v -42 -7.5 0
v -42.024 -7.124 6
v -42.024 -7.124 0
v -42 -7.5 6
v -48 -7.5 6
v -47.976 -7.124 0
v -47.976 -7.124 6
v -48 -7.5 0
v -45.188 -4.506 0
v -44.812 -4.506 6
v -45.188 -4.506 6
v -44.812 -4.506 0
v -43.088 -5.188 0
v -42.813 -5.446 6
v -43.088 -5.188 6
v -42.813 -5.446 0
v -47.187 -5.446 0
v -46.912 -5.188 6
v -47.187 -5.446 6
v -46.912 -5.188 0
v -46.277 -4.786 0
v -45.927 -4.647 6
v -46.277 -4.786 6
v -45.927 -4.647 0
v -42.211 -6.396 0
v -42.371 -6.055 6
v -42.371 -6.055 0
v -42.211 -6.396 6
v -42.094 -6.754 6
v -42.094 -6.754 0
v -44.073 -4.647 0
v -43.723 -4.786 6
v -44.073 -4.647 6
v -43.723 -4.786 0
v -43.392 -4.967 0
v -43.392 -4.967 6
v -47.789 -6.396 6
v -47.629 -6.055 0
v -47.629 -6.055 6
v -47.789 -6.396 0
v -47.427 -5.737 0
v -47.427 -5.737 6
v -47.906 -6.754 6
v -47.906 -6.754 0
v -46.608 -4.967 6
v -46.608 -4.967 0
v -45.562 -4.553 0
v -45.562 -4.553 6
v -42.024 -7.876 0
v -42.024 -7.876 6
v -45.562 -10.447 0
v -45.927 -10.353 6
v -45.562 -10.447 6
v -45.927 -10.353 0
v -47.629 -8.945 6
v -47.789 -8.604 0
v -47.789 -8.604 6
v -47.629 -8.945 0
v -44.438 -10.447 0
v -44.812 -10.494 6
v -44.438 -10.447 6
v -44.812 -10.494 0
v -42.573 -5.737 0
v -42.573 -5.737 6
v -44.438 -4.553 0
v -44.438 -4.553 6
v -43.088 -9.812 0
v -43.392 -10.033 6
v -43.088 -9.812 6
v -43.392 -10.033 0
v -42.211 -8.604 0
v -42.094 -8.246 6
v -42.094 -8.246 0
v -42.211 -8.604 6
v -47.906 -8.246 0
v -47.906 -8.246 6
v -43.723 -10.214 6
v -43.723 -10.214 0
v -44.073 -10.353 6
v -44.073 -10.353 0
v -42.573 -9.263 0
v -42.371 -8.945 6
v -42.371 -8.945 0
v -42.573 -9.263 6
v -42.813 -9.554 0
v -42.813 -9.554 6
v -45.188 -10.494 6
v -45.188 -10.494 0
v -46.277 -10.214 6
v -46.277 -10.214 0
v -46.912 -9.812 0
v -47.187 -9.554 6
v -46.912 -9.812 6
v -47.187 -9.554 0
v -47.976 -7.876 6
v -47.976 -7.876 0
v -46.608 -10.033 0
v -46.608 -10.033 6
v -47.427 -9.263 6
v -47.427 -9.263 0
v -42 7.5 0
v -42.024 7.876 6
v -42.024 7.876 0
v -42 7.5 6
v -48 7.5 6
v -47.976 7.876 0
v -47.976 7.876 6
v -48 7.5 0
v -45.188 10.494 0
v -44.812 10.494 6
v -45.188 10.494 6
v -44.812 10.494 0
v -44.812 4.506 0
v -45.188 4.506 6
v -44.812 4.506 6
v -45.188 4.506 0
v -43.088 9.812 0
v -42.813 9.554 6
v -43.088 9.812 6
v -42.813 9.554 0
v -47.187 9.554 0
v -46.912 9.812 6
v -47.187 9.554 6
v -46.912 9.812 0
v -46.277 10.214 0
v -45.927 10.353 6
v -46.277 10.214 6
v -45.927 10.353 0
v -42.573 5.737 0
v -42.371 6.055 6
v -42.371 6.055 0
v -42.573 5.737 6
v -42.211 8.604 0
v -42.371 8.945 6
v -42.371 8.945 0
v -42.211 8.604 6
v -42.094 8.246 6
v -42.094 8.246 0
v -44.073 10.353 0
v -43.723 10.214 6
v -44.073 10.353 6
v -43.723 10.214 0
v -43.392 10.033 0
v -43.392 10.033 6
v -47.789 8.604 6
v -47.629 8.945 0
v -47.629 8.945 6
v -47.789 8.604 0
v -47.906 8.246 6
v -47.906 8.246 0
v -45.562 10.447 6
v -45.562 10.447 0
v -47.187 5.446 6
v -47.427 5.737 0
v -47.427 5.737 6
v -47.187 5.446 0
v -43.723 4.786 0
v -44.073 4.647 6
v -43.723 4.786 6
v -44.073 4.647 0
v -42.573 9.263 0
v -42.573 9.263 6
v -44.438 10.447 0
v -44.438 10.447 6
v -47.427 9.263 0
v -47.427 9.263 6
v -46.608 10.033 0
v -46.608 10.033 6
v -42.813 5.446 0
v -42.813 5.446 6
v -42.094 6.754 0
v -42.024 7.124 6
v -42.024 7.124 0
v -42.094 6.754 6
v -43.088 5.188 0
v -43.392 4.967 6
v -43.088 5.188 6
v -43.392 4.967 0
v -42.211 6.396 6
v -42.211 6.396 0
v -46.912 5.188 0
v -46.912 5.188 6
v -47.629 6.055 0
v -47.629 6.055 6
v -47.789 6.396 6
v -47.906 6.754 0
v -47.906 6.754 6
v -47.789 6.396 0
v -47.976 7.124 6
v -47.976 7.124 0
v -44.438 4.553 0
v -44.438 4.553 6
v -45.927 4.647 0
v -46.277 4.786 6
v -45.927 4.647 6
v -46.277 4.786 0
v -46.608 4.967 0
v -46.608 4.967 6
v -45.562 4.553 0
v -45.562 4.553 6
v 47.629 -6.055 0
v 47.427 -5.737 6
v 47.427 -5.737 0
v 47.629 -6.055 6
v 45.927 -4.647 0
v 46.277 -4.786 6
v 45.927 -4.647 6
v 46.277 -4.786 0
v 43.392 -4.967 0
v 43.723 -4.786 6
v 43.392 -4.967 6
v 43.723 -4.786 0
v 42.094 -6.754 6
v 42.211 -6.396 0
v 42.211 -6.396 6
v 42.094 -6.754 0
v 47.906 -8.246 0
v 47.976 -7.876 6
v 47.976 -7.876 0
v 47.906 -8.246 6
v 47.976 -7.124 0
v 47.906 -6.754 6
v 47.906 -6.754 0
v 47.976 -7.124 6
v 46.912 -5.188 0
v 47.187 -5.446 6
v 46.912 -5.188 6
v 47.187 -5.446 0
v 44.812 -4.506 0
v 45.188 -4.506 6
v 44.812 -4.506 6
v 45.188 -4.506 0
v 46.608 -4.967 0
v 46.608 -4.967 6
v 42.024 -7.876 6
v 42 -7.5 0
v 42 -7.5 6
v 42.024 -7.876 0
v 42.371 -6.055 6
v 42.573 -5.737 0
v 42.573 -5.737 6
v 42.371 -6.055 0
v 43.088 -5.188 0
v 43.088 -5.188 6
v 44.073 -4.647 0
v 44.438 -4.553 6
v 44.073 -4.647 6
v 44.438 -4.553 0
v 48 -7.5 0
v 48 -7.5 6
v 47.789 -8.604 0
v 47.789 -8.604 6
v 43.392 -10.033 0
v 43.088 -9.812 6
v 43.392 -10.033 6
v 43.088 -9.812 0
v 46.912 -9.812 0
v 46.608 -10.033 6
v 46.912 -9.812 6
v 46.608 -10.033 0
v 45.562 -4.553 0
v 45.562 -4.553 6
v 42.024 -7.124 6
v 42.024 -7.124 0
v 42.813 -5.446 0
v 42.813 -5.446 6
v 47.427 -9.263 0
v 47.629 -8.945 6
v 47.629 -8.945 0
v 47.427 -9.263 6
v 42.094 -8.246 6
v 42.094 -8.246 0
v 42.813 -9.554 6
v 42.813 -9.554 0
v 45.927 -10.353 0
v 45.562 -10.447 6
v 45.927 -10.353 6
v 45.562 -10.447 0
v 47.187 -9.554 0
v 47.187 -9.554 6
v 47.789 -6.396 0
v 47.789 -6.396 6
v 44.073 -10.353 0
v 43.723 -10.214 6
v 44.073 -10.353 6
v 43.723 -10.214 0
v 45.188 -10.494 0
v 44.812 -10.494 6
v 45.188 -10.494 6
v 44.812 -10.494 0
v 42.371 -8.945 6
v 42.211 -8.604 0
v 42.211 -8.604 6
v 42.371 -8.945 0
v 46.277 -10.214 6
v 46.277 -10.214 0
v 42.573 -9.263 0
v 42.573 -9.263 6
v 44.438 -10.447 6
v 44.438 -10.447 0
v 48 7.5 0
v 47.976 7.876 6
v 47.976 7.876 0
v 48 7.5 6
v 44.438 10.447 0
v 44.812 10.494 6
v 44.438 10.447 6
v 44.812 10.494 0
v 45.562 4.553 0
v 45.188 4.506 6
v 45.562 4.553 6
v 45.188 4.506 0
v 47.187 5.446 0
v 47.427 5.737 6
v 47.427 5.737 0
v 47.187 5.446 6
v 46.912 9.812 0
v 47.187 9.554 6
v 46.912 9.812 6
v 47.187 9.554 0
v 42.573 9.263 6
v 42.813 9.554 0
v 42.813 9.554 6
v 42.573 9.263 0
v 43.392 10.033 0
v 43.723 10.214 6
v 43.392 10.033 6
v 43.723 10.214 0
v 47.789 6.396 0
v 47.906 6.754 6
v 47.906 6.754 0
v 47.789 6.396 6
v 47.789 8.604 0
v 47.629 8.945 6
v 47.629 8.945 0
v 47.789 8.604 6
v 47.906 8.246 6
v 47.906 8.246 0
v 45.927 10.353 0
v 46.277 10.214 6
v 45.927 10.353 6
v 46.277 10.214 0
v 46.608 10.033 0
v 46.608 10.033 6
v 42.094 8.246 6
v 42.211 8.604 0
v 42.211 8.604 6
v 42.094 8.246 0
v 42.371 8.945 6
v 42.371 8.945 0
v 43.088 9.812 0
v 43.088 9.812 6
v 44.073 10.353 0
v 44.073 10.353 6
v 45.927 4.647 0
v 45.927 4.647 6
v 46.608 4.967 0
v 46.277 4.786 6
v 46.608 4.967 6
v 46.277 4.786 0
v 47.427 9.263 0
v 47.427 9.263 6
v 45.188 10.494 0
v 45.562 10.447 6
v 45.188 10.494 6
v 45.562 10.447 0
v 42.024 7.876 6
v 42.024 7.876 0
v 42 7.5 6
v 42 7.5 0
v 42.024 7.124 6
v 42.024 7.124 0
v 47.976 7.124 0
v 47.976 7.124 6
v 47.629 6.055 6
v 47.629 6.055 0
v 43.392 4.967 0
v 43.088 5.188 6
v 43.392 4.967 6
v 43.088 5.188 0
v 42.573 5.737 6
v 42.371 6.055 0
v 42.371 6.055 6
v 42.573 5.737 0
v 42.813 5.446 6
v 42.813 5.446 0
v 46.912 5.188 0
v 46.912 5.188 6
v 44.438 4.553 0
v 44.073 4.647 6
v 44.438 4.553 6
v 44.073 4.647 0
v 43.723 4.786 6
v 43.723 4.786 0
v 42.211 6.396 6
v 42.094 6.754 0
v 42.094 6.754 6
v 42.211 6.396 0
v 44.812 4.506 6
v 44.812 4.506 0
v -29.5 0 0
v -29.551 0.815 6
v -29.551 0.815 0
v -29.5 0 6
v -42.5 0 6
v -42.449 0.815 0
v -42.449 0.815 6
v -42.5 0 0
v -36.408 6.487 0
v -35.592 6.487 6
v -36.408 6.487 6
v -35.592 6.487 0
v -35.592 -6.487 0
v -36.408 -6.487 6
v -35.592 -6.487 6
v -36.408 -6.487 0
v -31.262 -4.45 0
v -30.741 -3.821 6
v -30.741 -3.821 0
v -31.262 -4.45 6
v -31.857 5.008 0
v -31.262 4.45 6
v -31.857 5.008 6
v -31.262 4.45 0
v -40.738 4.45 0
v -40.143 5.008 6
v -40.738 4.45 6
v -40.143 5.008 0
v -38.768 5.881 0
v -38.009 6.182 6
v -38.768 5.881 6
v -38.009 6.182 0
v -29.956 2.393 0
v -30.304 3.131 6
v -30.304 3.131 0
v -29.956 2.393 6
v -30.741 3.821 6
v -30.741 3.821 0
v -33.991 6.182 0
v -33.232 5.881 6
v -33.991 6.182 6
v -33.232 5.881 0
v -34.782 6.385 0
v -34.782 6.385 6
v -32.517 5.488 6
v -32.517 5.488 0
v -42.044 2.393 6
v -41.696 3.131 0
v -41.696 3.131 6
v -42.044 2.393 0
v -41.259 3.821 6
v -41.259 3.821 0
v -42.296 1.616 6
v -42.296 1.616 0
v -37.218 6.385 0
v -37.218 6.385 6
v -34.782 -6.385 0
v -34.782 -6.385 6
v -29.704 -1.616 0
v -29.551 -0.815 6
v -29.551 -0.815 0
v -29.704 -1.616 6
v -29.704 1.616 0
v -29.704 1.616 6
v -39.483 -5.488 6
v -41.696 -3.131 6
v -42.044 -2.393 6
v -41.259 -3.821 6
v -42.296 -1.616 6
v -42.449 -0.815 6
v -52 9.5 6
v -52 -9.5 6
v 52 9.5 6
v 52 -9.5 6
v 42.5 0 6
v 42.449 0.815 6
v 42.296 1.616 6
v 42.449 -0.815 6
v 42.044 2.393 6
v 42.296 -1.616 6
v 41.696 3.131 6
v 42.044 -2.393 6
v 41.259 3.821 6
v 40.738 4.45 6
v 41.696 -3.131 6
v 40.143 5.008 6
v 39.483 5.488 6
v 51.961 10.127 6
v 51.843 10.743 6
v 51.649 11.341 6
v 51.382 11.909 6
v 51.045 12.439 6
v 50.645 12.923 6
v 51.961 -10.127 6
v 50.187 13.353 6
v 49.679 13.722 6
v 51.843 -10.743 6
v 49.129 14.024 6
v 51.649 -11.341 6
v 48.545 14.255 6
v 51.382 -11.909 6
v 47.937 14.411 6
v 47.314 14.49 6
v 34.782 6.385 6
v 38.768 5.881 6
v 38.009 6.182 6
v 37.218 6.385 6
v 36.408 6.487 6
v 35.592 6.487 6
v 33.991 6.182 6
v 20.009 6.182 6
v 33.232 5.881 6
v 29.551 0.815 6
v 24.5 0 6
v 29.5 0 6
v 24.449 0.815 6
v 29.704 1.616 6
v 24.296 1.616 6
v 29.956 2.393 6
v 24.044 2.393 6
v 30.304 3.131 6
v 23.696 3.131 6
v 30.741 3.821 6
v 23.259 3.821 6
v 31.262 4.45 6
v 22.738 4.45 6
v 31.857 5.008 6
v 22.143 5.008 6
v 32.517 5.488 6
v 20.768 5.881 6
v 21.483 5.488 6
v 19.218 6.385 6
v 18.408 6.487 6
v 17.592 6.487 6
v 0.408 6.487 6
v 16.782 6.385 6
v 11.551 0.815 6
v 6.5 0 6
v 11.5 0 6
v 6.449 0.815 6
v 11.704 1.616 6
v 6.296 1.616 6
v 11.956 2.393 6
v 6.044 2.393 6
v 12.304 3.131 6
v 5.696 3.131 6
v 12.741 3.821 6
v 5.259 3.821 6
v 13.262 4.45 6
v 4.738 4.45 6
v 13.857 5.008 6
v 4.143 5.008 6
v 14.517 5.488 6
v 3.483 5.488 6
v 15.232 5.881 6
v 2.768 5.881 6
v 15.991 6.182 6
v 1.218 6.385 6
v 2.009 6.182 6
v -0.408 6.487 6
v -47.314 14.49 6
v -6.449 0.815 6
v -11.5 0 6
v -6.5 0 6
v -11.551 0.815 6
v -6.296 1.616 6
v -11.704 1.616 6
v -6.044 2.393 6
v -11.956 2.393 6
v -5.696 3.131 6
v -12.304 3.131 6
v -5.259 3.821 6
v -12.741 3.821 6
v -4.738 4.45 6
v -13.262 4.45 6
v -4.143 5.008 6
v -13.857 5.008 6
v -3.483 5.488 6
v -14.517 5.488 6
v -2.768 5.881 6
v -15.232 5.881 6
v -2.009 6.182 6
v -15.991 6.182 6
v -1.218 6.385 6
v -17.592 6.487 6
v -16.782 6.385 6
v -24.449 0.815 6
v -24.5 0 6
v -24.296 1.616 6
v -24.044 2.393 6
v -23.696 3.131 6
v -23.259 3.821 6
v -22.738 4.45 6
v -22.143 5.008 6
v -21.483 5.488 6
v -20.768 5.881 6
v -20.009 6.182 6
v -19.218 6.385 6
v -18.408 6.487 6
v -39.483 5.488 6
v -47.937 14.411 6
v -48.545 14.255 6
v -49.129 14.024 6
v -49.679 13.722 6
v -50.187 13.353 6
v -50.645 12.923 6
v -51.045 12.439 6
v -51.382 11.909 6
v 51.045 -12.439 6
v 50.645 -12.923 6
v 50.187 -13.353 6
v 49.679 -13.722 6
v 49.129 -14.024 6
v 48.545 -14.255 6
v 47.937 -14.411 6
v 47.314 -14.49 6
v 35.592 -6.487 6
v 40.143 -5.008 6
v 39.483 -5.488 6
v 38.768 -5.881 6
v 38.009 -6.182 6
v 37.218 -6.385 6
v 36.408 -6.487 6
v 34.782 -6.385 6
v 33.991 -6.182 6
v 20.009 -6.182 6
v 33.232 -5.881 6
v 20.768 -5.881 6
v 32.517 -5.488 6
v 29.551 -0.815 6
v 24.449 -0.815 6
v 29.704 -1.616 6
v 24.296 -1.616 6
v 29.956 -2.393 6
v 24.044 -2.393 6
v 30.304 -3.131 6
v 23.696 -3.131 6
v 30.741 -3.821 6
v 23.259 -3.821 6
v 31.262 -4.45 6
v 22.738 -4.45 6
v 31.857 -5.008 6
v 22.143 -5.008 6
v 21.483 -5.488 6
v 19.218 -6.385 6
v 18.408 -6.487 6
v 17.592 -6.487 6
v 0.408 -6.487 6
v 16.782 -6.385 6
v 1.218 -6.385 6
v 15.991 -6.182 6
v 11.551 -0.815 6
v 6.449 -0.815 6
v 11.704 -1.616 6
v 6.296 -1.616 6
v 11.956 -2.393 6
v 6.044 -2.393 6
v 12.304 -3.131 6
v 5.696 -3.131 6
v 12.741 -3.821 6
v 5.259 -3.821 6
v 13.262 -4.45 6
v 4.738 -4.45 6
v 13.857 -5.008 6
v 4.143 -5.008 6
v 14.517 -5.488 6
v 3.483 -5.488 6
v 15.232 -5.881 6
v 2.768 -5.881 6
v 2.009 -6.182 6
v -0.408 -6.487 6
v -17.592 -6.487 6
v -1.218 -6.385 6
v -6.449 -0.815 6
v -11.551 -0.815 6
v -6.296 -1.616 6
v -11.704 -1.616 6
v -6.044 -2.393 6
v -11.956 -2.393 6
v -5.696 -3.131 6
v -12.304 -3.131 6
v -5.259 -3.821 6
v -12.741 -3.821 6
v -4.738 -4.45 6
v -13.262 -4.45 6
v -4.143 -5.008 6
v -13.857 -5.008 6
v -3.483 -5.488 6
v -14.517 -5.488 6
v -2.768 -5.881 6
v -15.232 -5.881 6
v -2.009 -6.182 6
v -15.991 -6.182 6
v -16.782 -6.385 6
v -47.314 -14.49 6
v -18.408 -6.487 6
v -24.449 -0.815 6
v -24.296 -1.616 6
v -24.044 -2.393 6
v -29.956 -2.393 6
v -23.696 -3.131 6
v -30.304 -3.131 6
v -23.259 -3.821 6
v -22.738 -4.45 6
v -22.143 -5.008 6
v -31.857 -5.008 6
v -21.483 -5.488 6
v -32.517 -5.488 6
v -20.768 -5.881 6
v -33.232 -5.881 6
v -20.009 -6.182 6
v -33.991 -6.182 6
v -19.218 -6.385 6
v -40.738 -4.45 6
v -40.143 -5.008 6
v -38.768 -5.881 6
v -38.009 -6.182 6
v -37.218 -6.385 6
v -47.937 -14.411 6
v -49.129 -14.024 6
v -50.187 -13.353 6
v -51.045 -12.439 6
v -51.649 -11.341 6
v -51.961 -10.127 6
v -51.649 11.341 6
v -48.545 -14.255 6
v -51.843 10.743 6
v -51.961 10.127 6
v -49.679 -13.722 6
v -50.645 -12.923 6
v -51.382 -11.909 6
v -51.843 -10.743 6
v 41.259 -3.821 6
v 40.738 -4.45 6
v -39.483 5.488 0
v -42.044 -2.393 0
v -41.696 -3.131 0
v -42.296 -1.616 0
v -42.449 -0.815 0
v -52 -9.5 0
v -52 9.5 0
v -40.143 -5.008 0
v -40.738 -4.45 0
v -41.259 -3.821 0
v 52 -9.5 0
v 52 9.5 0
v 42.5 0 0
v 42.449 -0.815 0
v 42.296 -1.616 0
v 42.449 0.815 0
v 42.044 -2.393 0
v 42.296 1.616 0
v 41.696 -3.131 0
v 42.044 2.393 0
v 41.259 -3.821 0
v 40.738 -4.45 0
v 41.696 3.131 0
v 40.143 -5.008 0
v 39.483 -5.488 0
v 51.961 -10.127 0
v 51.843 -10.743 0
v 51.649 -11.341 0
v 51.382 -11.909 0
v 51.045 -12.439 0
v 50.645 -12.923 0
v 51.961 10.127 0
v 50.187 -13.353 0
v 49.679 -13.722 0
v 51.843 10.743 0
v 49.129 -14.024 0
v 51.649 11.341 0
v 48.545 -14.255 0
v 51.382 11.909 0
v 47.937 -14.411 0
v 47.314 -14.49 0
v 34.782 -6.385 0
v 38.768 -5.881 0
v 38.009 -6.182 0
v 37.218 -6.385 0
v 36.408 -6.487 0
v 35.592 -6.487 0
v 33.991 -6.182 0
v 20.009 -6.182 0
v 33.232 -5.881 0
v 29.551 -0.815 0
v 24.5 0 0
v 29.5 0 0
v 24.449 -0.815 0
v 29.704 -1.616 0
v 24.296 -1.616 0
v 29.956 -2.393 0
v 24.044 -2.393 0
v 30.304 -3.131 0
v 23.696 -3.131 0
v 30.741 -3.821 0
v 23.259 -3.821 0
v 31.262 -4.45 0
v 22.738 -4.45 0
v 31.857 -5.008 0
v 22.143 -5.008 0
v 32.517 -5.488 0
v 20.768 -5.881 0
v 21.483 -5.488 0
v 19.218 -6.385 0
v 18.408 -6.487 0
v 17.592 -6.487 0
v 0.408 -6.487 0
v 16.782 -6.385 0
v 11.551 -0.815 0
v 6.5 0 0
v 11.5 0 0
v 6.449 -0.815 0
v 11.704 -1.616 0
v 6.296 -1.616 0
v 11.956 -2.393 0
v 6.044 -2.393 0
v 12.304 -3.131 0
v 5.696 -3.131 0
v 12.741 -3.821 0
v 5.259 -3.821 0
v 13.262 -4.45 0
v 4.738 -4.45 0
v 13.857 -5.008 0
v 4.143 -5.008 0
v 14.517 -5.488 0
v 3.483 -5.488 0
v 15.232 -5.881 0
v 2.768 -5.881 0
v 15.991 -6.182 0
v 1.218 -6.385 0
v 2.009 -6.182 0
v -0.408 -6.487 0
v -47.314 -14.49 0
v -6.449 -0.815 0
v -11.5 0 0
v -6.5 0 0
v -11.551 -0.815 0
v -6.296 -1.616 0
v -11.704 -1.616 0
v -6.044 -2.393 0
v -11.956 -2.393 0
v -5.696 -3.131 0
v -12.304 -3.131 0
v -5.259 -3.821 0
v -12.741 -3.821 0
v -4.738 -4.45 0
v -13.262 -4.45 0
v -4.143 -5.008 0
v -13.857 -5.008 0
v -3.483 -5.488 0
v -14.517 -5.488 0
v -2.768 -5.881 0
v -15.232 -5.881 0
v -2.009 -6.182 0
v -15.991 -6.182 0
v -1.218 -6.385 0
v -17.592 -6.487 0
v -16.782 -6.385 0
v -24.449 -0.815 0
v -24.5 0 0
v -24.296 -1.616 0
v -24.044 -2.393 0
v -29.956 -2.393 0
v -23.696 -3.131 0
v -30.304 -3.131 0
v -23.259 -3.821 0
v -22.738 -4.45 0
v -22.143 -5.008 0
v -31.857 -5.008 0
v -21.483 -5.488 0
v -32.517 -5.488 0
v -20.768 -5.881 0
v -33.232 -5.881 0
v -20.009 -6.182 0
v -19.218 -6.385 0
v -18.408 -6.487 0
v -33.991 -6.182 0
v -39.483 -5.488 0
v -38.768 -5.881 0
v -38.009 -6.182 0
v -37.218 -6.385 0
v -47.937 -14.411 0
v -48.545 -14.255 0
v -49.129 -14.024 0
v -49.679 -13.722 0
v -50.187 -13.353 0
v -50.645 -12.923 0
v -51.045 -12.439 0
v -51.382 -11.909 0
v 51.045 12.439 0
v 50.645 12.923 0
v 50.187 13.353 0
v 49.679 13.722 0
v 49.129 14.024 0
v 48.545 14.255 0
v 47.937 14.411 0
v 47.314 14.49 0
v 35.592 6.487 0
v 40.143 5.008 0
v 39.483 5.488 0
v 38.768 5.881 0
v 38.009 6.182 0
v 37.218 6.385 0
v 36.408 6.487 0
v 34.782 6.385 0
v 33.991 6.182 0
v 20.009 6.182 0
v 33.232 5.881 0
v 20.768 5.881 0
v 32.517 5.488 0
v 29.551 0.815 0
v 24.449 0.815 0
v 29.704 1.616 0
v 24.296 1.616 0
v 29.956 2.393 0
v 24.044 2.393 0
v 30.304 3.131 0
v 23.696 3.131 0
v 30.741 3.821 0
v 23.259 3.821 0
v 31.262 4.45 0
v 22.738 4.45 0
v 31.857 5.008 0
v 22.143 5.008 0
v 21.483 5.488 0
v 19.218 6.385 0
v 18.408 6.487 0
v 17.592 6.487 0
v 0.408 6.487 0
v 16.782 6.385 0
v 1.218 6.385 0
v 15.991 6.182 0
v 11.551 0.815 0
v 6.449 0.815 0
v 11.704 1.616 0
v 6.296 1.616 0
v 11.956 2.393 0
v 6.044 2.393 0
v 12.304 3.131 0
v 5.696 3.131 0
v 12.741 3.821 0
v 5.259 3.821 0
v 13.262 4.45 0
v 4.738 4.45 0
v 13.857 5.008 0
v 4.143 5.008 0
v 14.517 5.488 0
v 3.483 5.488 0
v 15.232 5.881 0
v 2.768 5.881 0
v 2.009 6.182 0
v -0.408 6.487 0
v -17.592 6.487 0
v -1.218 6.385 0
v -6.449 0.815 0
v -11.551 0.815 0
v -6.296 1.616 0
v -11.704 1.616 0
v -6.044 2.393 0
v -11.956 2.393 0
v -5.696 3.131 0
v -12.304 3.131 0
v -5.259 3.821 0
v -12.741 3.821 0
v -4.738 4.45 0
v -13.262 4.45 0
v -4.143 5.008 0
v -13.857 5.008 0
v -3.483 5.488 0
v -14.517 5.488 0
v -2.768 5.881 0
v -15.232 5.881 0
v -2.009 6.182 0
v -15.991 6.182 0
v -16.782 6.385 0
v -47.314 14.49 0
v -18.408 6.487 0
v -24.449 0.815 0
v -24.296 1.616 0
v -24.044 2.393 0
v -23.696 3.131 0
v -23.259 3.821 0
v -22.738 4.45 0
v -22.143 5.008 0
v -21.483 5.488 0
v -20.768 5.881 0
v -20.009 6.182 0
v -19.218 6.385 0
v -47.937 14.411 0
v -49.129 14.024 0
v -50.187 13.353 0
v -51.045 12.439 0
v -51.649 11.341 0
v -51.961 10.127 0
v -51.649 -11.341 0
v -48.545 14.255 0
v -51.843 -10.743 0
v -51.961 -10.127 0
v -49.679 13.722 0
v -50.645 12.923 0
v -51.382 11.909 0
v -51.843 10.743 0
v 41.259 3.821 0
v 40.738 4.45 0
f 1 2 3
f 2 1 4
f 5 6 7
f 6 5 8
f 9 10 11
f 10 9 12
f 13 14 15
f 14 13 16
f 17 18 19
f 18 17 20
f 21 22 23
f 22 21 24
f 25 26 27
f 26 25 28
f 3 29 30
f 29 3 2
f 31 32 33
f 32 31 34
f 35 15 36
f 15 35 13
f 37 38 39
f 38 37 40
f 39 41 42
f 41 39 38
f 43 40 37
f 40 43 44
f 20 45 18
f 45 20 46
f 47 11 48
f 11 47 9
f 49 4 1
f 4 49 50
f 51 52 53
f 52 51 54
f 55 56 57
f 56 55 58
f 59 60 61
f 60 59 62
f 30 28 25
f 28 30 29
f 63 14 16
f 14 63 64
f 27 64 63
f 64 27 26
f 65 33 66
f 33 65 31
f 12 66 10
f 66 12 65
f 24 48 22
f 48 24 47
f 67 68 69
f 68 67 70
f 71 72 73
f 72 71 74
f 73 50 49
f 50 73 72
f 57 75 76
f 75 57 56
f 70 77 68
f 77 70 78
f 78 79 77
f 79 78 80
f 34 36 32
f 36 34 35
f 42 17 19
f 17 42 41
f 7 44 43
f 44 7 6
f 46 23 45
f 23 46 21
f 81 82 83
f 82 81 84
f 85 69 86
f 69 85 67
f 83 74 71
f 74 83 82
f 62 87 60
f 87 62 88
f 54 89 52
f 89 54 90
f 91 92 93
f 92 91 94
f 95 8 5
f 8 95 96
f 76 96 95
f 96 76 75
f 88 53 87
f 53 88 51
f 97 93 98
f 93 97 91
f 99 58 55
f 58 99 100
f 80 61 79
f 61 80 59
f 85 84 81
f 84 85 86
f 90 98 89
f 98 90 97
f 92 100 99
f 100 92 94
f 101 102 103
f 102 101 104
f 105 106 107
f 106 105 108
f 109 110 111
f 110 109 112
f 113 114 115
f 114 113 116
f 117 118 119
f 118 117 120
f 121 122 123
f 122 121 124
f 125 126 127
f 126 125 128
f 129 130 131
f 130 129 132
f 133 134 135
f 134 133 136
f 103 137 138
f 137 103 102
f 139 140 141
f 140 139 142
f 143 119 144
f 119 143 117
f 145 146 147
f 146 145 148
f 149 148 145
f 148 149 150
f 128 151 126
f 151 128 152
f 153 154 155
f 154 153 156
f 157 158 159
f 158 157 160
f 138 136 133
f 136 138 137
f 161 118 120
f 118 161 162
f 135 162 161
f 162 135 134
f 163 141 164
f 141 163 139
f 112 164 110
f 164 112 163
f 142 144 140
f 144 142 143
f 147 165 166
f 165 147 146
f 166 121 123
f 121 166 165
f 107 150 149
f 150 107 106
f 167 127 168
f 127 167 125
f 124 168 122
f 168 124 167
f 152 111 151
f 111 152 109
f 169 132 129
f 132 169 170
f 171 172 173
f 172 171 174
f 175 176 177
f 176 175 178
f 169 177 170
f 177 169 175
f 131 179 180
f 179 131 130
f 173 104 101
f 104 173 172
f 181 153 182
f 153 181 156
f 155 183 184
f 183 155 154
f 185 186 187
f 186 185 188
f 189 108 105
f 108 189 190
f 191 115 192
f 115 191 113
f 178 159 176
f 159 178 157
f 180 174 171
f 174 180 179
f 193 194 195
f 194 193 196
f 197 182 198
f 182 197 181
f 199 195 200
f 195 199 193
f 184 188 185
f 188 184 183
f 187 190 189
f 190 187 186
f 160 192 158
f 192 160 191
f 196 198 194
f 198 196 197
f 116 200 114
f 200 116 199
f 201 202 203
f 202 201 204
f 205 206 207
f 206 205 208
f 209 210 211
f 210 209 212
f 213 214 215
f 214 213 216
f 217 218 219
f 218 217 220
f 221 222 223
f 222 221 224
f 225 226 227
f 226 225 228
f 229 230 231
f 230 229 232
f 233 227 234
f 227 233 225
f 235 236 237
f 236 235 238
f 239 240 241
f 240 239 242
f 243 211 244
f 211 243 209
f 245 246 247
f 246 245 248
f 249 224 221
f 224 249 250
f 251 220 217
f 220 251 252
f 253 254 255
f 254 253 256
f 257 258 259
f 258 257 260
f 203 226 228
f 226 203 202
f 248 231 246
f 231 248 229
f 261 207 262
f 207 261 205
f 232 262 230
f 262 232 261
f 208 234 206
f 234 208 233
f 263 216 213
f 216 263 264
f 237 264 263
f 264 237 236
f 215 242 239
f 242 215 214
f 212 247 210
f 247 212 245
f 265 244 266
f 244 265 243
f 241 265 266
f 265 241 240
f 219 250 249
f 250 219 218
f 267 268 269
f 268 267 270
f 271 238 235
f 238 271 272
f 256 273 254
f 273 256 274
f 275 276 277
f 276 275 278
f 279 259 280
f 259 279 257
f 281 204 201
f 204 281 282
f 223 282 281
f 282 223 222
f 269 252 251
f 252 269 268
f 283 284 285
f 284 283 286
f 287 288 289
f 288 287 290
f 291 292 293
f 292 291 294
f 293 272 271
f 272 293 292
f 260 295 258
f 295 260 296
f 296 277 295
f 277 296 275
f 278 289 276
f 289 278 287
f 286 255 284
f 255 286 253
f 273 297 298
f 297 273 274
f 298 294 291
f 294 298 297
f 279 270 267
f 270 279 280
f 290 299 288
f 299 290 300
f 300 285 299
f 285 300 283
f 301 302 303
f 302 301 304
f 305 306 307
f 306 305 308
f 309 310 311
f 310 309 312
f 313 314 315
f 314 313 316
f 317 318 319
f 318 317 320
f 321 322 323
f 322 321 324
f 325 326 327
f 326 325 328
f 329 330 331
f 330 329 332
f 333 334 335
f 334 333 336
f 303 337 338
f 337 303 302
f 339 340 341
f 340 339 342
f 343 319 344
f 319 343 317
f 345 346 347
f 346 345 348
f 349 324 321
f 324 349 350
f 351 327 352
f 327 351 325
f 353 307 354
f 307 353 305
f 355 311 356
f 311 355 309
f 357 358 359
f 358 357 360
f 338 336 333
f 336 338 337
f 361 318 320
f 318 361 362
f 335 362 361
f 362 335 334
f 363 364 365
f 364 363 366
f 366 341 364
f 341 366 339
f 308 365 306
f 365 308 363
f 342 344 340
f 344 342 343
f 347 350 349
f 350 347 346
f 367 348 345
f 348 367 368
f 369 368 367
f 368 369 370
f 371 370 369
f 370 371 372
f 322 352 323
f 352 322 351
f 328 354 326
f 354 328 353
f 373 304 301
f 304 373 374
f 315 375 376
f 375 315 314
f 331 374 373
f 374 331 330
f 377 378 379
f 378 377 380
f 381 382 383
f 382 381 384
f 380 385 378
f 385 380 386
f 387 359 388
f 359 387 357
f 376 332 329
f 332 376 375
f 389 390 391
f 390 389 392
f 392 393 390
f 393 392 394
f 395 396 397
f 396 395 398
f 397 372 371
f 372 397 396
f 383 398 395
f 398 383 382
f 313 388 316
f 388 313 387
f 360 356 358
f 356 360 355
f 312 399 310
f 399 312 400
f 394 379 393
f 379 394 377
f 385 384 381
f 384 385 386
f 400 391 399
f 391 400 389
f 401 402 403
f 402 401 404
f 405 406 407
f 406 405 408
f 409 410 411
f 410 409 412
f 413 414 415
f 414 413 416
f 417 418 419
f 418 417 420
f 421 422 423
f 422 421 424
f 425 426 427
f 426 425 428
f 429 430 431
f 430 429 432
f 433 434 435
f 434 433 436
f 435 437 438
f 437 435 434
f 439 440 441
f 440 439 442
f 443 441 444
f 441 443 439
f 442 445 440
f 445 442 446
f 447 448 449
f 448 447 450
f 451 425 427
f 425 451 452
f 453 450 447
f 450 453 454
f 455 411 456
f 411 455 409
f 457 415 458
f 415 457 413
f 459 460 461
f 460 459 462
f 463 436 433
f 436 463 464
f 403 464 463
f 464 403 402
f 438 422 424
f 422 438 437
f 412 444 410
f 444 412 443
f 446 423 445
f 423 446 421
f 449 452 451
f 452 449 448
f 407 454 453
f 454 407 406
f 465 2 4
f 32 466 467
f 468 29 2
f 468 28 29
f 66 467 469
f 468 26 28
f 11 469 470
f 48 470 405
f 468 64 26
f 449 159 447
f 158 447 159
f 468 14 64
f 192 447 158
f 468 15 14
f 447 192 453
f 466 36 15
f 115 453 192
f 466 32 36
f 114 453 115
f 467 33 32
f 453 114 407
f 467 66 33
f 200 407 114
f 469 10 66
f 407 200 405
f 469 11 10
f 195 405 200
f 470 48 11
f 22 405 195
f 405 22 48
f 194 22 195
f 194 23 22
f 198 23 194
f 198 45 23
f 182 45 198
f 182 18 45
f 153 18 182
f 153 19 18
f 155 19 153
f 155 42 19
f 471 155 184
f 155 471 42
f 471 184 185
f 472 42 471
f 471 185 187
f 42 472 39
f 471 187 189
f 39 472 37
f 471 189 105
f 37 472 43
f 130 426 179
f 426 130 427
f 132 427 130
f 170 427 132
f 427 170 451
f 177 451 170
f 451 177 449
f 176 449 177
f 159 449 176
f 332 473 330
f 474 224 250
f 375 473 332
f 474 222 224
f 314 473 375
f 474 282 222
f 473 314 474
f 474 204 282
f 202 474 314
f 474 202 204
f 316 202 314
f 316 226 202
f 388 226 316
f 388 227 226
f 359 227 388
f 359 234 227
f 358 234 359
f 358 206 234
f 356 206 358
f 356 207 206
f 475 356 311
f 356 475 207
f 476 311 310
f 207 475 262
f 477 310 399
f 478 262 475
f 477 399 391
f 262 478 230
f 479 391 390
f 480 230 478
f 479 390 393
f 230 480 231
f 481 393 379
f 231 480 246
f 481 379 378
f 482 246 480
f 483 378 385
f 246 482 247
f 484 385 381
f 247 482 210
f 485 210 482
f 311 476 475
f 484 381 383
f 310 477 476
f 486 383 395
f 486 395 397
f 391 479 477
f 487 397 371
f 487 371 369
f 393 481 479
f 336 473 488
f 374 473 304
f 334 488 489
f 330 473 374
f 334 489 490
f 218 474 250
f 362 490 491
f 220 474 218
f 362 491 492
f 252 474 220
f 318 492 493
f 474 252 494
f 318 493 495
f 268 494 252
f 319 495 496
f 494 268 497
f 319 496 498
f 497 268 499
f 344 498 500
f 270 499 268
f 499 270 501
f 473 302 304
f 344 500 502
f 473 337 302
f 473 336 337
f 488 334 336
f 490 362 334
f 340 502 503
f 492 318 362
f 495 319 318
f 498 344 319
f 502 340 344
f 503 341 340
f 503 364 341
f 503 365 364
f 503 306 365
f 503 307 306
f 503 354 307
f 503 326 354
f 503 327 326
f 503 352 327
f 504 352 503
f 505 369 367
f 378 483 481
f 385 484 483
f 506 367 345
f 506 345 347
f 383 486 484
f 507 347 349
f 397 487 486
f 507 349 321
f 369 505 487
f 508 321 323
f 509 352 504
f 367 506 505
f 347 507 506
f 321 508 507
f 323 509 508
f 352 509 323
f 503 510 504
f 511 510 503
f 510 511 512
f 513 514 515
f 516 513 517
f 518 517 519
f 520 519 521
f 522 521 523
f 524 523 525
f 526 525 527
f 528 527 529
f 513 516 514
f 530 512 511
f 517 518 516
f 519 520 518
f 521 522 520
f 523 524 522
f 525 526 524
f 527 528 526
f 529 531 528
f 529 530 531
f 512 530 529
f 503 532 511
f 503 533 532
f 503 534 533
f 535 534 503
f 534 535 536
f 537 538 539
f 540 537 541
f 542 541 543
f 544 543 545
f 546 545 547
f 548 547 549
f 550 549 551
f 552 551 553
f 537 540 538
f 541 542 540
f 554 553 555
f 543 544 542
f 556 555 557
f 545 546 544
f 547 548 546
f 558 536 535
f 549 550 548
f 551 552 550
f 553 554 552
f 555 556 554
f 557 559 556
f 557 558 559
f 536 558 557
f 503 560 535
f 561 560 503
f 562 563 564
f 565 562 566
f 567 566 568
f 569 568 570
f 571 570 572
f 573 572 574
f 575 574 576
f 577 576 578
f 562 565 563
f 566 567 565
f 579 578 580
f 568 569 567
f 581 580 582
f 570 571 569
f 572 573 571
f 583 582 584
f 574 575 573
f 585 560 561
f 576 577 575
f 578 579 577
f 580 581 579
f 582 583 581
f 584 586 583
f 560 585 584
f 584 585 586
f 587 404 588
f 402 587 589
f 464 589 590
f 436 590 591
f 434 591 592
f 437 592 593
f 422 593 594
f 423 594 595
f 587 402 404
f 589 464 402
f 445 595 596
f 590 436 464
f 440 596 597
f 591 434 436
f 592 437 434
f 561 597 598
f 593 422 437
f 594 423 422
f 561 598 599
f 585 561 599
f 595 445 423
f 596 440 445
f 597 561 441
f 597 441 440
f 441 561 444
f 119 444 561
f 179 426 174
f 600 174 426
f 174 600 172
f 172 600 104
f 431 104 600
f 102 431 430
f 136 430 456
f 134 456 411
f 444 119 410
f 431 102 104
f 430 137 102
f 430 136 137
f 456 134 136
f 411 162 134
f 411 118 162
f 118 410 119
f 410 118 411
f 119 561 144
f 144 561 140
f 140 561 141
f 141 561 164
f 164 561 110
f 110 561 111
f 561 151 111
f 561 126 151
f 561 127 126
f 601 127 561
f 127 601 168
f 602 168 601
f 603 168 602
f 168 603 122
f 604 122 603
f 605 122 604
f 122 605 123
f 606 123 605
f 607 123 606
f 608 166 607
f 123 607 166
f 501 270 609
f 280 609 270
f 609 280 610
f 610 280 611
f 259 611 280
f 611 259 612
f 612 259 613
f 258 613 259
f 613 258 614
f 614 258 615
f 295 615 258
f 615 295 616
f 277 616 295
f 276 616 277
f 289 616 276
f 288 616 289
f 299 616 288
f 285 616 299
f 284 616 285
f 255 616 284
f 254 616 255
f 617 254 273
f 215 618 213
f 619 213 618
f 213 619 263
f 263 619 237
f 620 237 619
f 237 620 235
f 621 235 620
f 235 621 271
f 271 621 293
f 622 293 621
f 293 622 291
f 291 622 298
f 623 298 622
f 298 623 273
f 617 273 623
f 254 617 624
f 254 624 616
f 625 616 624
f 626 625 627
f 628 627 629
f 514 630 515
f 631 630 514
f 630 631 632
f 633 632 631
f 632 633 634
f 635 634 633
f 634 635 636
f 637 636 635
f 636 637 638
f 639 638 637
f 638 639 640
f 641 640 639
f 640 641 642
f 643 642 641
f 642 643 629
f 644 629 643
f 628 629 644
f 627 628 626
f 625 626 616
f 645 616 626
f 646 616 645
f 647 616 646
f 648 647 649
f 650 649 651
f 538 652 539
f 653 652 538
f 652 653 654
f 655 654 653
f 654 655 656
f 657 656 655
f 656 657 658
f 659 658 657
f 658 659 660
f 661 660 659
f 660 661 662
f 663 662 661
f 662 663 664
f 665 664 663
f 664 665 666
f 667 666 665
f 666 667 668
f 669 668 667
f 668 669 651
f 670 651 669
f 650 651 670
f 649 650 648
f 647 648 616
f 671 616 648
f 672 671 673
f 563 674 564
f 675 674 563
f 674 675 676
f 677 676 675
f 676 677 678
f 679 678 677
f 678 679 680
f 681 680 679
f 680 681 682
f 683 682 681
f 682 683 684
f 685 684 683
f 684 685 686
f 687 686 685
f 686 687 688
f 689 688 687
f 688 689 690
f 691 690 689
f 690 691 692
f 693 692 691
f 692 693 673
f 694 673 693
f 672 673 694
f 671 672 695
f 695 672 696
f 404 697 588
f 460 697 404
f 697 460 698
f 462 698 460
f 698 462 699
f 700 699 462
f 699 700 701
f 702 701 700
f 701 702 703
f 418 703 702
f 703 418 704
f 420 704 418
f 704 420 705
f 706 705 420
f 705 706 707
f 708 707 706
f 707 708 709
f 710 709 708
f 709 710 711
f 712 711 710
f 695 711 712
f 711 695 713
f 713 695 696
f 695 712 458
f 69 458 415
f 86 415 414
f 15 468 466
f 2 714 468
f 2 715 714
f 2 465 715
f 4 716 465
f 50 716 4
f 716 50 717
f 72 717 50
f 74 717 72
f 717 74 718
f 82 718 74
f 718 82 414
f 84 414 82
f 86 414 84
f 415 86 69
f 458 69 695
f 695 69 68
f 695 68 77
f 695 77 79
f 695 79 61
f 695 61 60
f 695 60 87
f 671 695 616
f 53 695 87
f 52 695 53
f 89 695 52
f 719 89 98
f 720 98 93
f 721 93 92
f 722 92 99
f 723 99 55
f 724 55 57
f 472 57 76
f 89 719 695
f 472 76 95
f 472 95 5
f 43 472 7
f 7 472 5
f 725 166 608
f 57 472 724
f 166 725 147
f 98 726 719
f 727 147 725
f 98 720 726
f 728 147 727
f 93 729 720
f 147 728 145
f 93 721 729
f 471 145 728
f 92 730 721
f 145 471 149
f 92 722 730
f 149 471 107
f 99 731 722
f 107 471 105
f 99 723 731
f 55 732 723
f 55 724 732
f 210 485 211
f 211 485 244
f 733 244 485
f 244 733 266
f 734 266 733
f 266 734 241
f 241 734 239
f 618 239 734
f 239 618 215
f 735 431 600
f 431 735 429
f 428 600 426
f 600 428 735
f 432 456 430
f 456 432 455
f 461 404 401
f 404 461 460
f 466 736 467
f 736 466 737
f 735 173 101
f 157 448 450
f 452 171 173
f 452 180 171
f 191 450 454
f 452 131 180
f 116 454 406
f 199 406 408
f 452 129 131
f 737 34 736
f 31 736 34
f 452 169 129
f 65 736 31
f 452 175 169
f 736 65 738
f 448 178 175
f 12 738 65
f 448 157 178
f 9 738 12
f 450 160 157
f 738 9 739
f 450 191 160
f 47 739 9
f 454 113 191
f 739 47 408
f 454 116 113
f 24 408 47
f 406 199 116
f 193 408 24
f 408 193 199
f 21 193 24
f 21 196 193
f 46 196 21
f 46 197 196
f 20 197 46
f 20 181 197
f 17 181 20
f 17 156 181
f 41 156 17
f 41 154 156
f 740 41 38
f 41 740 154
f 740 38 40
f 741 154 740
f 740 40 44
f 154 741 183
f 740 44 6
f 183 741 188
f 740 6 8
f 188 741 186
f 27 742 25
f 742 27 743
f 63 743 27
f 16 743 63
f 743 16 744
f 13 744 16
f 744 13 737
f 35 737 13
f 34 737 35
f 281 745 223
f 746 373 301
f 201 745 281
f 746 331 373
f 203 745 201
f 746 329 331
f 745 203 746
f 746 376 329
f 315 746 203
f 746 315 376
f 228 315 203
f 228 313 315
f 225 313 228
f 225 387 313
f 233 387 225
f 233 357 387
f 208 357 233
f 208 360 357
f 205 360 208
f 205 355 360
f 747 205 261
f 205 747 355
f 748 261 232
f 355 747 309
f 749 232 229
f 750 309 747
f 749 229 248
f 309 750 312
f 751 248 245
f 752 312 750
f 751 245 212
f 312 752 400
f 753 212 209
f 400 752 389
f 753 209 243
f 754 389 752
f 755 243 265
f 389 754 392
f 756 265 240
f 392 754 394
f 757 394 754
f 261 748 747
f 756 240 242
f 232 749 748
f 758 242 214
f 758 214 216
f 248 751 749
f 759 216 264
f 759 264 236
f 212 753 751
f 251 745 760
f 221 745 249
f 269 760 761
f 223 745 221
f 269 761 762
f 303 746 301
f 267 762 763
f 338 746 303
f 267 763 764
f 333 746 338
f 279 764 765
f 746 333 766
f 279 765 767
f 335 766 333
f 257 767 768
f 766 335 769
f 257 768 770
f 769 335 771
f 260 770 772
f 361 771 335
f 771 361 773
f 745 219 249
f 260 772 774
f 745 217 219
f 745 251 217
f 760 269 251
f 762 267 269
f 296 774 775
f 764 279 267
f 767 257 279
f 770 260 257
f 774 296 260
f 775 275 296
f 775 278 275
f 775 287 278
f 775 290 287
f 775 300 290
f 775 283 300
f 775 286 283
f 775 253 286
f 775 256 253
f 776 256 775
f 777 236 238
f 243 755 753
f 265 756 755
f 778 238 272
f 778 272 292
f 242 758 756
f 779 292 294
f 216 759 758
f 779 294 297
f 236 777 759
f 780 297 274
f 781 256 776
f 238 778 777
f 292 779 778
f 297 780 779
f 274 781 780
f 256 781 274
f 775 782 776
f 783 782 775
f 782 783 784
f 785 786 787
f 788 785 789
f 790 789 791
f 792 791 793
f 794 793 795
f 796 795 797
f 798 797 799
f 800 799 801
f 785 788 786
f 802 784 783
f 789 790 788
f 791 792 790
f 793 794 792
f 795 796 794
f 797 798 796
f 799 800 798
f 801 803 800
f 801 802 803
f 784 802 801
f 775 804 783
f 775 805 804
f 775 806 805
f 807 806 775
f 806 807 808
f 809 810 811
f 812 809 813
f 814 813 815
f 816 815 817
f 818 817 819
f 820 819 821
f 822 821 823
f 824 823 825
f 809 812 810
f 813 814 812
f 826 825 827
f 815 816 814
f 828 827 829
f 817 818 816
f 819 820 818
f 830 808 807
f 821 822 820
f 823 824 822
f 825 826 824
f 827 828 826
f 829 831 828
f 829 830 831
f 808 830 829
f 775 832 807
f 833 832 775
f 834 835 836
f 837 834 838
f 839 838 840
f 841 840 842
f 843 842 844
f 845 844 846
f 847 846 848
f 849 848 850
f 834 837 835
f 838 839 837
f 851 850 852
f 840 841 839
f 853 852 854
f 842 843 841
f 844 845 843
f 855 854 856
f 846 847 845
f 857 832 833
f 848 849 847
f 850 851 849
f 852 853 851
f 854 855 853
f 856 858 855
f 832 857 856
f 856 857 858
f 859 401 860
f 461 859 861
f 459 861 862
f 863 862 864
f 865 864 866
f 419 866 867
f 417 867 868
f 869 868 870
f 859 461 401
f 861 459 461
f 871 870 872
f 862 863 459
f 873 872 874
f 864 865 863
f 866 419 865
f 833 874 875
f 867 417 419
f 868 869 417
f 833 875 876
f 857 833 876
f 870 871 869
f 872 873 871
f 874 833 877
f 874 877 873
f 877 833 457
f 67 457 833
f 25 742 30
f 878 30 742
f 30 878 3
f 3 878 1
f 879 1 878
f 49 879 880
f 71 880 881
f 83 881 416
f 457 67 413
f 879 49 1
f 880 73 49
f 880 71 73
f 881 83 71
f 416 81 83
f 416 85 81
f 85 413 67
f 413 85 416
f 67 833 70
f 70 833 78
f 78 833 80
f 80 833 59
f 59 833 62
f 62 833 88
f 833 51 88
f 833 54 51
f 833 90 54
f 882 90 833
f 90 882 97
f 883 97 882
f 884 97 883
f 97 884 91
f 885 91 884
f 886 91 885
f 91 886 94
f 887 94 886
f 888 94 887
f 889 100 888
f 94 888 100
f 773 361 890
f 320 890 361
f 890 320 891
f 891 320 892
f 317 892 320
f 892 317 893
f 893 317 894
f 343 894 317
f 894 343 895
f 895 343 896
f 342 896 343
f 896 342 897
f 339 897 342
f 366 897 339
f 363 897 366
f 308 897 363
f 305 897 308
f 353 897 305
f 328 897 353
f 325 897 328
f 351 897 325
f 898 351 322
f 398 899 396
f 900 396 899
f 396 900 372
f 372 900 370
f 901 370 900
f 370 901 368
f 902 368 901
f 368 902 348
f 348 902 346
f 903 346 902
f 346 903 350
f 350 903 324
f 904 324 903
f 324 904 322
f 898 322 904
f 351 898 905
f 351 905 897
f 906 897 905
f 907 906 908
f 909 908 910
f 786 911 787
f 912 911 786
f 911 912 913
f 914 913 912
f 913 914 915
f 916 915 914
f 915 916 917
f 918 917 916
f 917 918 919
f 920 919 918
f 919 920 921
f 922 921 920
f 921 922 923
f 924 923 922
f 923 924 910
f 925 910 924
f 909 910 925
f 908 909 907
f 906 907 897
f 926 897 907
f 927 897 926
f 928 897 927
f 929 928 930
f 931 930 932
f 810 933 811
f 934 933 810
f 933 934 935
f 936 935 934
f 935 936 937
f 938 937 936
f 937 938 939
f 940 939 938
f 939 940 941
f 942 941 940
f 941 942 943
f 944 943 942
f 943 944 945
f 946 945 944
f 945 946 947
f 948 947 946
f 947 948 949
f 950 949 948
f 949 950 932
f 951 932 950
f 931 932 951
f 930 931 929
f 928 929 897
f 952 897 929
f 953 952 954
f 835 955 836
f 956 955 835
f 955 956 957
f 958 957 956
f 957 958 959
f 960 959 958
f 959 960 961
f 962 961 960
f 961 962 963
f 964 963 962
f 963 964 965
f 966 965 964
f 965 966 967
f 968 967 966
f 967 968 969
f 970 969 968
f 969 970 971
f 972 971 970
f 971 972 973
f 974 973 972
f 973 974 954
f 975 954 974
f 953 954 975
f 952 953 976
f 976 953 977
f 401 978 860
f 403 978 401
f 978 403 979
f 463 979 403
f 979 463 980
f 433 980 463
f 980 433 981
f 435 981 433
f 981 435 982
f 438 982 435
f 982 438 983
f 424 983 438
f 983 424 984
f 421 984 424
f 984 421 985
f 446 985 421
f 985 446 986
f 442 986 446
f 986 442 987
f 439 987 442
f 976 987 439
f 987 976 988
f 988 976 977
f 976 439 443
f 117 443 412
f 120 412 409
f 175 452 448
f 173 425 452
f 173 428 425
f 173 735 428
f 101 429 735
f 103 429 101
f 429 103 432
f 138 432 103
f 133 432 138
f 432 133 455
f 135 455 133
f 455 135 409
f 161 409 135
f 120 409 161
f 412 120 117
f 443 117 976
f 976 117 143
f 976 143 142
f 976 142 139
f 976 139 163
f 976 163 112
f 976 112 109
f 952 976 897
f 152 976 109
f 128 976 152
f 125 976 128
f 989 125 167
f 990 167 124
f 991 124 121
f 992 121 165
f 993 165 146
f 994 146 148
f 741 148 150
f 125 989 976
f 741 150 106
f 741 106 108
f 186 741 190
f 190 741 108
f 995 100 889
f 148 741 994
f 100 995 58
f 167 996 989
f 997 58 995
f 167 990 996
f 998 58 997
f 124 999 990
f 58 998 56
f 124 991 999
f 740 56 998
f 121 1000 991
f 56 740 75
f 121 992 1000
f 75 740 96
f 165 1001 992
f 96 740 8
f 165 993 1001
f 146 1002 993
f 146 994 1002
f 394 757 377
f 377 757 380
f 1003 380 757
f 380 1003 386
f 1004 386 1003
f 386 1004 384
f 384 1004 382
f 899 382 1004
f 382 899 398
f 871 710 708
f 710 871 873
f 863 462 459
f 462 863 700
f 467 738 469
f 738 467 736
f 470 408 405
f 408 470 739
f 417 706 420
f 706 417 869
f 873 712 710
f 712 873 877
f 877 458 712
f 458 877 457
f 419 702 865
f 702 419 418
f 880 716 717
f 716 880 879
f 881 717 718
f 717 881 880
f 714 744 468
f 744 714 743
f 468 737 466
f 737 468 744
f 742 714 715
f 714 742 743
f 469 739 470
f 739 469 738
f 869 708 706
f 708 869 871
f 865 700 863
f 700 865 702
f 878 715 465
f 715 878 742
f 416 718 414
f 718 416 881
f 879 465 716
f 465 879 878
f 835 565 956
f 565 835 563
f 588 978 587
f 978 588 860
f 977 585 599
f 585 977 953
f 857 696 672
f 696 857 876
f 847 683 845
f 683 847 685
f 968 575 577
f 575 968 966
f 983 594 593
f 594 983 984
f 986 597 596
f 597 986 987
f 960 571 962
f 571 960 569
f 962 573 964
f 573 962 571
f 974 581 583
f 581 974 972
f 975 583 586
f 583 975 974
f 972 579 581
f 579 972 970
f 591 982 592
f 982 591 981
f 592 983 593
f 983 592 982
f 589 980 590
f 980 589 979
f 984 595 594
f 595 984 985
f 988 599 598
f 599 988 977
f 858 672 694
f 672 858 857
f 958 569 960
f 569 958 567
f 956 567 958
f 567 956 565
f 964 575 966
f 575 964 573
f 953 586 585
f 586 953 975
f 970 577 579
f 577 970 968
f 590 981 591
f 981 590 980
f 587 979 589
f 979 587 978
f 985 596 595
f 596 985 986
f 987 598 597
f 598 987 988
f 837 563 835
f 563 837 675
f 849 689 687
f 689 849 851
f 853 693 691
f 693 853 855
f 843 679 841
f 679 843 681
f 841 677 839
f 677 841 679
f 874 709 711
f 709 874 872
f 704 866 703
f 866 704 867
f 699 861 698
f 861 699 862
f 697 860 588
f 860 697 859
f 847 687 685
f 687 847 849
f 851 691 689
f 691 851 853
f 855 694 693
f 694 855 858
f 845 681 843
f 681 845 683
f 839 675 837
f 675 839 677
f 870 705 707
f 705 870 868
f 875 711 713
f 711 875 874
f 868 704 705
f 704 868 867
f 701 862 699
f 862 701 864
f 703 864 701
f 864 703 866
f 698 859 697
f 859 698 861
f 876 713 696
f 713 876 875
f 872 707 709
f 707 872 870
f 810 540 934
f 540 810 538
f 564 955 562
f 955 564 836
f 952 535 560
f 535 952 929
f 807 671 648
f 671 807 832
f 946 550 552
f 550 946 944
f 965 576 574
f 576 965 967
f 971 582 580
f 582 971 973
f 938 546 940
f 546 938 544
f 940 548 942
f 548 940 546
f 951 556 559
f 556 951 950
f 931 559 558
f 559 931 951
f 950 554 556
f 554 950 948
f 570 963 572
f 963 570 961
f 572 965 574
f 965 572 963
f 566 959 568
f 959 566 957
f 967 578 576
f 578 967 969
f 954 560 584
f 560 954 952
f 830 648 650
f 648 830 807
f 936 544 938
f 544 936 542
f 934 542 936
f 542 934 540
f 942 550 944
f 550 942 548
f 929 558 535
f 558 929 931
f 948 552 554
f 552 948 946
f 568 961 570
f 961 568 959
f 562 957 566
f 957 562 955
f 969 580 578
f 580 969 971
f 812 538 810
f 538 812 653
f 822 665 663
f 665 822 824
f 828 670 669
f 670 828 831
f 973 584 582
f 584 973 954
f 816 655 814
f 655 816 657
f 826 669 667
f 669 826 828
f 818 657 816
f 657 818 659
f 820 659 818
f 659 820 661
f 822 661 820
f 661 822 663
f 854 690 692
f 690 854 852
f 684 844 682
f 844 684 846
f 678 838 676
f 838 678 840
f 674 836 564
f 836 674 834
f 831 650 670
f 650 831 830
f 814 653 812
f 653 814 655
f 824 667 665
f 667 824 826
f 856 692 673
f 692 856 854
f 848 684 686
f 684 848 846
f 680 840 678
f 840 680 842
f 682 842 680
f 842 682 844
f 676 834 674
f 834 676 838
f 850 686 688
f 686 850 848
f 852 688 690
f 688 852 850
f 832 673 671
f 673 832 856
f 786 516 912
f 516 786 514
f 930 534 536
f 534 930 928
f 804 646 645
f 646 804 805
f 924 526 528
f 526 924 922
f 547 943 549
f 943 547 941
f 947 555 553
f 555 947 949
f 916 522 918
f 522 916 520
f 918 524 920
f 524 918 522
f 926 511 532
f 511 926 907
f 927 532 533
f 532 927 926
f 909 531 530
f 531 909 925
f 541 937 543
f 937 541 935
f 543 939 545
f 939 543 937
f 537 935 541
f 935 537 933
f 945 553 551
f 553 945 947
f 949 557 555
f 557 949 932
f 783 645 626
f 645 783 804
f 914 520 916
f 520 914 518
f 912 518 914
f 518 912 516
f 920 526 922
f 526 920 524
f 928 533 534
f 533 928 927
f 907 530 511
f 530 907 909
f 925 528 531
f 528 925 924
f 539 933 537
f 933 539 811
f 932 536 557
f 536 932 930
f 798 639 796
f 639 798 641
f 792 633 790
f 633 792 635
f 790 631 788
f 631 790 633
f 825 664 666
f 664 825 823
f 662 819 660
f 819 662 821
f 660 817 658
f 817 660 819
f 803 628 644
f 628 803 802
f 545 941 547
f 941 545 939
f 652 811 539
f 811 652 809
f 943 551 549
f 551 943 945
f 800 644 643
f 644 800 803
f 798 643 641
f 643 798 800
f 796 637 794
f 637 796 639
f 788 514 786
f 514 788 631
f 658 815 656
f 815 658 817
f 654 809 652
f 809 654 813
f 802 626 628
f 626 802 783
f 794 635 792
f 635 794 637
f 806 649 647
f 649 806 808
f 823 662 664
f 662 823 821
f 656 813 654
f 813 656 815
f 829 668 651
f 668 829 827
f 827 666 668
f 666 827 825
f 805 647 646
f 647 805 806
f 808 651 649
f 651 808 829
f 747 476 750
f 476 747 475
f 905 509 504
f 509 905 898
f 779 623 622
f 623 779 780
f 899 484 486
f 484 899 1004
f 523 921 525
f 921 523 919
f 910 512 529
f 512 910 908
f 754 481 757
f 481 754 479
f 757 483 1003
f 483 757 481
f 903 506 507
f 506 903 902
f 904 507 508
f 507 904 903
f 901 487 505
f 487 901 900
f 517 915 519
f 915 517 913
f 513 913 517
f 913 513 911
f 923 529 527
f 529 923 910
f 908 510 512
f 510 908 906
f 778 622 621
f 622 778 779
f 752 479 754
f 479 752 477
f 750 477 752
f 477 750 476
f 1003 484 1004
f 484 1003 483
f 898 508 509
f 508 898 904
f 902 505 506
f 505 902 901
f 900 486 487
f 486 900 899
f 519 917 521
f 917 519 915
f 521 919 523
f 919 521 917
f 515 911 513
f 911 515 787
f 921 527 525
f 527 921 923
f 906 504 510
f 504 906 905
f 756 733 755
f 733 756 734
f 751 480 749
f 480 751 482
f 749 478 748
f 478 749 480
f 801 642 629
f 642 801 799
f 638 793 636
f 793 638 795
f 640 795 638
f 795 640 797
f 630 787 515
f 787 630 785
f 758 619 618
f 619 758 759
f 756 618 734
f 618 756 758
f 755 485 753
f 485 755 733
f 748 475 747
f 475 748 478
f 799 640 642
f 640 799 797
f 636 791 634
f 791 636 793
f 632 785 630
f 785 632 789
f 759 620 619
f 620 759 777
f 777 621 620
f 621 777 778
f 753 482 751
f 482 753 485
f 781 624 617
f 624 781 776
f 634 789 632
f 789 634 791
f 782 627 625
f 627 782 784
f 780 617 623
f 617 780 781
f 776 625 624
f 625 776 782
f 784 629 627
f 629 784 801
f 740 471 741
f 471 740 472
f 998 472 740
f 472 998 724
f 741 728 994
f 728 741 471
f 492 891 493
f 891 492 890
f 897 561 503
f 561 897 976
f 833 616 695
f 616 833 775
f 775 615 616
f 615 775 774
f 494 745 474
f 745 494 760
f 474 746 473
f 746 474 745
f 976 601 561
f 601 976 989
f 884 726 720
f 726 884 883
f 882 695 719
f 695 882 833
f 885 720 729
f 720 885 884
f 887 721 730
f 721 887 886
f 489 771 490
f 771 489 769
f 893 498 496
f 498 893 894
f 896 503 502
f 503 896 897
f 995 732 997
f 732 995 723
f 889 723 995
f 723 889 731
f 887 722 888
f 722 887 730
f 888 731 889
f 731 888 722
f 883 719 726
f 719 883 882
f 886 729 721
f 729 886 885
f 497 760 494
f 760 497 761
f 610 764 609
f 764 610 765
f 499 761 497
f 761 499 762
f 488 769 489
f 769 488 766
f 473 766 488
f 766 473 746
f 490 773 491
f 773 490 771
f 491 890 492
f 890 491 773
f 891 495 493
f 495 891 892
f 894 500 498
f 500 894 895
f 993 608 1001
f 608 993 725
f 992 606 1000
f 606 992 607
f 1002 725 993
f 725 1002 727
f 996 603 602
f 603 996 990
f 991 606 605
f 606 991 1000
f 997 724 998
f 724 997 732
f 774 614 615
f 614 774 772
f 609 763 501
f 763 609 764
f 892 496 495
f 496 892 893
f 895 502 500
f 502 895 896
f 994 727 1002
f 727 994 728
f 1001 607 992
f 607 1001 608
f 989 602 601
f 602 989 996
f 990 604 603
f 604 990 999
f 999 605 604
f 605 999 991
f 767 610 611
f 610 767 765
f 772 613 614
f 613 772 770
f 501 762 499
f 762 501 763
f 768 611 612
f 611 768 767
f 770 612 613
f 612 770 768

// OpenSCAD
$fn = 50;


difference() {
	union() {
		hull() {
			translate(v = [-47.0000000000, 9.5000000000, 0]) {
				cylinder(h = 6, r = 5);
			}
			translate(v = [47.0000000000, 9.5000000000, 0]) {
				cylinder(h = 6, r = 5);
			}
			translate(v = [-47.0000000000, -9.5000000000, 0]) {
				cylinder(h = 6, r = 5);
			}
			translate(v = [47.0000000000, -9.5000000000, 0]) {
				cylinder(h = 6, r = 5);
			}
		}
	}
	union() {
		#translate(v = [-45.0000000000, -7.5000000000, -100.0000000000]) {
			cylinder(h = 200, r = 3.0000000000);
		}
		#translate(v = [-45.0000000000, 7.5000000000, -100.0000000000]) {
			cylinder(h = 200, r = 3.0000000000);
		}
		#translate(v = [45.0000000000, -7.5000000000, -100.0000000000]) {
			cylinder(h = 200, r = 3.0000000000);
		}
		#translate(v = [45.0000000000, 7.5000000000, -100.0000000000]) {
			cylinder(h = 200, r = 3.0000000000);
		}
		#translate(v = [-36.0000000000, 0, 0]) {
			cylinder(h = 6, r = 6.5000000000);
		}
		#translate(v = [-18.0000000000, 0, 0]) {
			cylinder(h = 6, r = 6.5000000000);
		}
		#cylinder(h = 6, r = 6.5000000000);
		#translate(v = [18.0000000000, 0, 0]) {
			cylinder(h = 6, r = 6.5000000000);
		}
		#translate(v = [36.0000000000, 0, 0]) {
			cylinder(h = 6, r = 6.5000000000);
		}
	}
}
